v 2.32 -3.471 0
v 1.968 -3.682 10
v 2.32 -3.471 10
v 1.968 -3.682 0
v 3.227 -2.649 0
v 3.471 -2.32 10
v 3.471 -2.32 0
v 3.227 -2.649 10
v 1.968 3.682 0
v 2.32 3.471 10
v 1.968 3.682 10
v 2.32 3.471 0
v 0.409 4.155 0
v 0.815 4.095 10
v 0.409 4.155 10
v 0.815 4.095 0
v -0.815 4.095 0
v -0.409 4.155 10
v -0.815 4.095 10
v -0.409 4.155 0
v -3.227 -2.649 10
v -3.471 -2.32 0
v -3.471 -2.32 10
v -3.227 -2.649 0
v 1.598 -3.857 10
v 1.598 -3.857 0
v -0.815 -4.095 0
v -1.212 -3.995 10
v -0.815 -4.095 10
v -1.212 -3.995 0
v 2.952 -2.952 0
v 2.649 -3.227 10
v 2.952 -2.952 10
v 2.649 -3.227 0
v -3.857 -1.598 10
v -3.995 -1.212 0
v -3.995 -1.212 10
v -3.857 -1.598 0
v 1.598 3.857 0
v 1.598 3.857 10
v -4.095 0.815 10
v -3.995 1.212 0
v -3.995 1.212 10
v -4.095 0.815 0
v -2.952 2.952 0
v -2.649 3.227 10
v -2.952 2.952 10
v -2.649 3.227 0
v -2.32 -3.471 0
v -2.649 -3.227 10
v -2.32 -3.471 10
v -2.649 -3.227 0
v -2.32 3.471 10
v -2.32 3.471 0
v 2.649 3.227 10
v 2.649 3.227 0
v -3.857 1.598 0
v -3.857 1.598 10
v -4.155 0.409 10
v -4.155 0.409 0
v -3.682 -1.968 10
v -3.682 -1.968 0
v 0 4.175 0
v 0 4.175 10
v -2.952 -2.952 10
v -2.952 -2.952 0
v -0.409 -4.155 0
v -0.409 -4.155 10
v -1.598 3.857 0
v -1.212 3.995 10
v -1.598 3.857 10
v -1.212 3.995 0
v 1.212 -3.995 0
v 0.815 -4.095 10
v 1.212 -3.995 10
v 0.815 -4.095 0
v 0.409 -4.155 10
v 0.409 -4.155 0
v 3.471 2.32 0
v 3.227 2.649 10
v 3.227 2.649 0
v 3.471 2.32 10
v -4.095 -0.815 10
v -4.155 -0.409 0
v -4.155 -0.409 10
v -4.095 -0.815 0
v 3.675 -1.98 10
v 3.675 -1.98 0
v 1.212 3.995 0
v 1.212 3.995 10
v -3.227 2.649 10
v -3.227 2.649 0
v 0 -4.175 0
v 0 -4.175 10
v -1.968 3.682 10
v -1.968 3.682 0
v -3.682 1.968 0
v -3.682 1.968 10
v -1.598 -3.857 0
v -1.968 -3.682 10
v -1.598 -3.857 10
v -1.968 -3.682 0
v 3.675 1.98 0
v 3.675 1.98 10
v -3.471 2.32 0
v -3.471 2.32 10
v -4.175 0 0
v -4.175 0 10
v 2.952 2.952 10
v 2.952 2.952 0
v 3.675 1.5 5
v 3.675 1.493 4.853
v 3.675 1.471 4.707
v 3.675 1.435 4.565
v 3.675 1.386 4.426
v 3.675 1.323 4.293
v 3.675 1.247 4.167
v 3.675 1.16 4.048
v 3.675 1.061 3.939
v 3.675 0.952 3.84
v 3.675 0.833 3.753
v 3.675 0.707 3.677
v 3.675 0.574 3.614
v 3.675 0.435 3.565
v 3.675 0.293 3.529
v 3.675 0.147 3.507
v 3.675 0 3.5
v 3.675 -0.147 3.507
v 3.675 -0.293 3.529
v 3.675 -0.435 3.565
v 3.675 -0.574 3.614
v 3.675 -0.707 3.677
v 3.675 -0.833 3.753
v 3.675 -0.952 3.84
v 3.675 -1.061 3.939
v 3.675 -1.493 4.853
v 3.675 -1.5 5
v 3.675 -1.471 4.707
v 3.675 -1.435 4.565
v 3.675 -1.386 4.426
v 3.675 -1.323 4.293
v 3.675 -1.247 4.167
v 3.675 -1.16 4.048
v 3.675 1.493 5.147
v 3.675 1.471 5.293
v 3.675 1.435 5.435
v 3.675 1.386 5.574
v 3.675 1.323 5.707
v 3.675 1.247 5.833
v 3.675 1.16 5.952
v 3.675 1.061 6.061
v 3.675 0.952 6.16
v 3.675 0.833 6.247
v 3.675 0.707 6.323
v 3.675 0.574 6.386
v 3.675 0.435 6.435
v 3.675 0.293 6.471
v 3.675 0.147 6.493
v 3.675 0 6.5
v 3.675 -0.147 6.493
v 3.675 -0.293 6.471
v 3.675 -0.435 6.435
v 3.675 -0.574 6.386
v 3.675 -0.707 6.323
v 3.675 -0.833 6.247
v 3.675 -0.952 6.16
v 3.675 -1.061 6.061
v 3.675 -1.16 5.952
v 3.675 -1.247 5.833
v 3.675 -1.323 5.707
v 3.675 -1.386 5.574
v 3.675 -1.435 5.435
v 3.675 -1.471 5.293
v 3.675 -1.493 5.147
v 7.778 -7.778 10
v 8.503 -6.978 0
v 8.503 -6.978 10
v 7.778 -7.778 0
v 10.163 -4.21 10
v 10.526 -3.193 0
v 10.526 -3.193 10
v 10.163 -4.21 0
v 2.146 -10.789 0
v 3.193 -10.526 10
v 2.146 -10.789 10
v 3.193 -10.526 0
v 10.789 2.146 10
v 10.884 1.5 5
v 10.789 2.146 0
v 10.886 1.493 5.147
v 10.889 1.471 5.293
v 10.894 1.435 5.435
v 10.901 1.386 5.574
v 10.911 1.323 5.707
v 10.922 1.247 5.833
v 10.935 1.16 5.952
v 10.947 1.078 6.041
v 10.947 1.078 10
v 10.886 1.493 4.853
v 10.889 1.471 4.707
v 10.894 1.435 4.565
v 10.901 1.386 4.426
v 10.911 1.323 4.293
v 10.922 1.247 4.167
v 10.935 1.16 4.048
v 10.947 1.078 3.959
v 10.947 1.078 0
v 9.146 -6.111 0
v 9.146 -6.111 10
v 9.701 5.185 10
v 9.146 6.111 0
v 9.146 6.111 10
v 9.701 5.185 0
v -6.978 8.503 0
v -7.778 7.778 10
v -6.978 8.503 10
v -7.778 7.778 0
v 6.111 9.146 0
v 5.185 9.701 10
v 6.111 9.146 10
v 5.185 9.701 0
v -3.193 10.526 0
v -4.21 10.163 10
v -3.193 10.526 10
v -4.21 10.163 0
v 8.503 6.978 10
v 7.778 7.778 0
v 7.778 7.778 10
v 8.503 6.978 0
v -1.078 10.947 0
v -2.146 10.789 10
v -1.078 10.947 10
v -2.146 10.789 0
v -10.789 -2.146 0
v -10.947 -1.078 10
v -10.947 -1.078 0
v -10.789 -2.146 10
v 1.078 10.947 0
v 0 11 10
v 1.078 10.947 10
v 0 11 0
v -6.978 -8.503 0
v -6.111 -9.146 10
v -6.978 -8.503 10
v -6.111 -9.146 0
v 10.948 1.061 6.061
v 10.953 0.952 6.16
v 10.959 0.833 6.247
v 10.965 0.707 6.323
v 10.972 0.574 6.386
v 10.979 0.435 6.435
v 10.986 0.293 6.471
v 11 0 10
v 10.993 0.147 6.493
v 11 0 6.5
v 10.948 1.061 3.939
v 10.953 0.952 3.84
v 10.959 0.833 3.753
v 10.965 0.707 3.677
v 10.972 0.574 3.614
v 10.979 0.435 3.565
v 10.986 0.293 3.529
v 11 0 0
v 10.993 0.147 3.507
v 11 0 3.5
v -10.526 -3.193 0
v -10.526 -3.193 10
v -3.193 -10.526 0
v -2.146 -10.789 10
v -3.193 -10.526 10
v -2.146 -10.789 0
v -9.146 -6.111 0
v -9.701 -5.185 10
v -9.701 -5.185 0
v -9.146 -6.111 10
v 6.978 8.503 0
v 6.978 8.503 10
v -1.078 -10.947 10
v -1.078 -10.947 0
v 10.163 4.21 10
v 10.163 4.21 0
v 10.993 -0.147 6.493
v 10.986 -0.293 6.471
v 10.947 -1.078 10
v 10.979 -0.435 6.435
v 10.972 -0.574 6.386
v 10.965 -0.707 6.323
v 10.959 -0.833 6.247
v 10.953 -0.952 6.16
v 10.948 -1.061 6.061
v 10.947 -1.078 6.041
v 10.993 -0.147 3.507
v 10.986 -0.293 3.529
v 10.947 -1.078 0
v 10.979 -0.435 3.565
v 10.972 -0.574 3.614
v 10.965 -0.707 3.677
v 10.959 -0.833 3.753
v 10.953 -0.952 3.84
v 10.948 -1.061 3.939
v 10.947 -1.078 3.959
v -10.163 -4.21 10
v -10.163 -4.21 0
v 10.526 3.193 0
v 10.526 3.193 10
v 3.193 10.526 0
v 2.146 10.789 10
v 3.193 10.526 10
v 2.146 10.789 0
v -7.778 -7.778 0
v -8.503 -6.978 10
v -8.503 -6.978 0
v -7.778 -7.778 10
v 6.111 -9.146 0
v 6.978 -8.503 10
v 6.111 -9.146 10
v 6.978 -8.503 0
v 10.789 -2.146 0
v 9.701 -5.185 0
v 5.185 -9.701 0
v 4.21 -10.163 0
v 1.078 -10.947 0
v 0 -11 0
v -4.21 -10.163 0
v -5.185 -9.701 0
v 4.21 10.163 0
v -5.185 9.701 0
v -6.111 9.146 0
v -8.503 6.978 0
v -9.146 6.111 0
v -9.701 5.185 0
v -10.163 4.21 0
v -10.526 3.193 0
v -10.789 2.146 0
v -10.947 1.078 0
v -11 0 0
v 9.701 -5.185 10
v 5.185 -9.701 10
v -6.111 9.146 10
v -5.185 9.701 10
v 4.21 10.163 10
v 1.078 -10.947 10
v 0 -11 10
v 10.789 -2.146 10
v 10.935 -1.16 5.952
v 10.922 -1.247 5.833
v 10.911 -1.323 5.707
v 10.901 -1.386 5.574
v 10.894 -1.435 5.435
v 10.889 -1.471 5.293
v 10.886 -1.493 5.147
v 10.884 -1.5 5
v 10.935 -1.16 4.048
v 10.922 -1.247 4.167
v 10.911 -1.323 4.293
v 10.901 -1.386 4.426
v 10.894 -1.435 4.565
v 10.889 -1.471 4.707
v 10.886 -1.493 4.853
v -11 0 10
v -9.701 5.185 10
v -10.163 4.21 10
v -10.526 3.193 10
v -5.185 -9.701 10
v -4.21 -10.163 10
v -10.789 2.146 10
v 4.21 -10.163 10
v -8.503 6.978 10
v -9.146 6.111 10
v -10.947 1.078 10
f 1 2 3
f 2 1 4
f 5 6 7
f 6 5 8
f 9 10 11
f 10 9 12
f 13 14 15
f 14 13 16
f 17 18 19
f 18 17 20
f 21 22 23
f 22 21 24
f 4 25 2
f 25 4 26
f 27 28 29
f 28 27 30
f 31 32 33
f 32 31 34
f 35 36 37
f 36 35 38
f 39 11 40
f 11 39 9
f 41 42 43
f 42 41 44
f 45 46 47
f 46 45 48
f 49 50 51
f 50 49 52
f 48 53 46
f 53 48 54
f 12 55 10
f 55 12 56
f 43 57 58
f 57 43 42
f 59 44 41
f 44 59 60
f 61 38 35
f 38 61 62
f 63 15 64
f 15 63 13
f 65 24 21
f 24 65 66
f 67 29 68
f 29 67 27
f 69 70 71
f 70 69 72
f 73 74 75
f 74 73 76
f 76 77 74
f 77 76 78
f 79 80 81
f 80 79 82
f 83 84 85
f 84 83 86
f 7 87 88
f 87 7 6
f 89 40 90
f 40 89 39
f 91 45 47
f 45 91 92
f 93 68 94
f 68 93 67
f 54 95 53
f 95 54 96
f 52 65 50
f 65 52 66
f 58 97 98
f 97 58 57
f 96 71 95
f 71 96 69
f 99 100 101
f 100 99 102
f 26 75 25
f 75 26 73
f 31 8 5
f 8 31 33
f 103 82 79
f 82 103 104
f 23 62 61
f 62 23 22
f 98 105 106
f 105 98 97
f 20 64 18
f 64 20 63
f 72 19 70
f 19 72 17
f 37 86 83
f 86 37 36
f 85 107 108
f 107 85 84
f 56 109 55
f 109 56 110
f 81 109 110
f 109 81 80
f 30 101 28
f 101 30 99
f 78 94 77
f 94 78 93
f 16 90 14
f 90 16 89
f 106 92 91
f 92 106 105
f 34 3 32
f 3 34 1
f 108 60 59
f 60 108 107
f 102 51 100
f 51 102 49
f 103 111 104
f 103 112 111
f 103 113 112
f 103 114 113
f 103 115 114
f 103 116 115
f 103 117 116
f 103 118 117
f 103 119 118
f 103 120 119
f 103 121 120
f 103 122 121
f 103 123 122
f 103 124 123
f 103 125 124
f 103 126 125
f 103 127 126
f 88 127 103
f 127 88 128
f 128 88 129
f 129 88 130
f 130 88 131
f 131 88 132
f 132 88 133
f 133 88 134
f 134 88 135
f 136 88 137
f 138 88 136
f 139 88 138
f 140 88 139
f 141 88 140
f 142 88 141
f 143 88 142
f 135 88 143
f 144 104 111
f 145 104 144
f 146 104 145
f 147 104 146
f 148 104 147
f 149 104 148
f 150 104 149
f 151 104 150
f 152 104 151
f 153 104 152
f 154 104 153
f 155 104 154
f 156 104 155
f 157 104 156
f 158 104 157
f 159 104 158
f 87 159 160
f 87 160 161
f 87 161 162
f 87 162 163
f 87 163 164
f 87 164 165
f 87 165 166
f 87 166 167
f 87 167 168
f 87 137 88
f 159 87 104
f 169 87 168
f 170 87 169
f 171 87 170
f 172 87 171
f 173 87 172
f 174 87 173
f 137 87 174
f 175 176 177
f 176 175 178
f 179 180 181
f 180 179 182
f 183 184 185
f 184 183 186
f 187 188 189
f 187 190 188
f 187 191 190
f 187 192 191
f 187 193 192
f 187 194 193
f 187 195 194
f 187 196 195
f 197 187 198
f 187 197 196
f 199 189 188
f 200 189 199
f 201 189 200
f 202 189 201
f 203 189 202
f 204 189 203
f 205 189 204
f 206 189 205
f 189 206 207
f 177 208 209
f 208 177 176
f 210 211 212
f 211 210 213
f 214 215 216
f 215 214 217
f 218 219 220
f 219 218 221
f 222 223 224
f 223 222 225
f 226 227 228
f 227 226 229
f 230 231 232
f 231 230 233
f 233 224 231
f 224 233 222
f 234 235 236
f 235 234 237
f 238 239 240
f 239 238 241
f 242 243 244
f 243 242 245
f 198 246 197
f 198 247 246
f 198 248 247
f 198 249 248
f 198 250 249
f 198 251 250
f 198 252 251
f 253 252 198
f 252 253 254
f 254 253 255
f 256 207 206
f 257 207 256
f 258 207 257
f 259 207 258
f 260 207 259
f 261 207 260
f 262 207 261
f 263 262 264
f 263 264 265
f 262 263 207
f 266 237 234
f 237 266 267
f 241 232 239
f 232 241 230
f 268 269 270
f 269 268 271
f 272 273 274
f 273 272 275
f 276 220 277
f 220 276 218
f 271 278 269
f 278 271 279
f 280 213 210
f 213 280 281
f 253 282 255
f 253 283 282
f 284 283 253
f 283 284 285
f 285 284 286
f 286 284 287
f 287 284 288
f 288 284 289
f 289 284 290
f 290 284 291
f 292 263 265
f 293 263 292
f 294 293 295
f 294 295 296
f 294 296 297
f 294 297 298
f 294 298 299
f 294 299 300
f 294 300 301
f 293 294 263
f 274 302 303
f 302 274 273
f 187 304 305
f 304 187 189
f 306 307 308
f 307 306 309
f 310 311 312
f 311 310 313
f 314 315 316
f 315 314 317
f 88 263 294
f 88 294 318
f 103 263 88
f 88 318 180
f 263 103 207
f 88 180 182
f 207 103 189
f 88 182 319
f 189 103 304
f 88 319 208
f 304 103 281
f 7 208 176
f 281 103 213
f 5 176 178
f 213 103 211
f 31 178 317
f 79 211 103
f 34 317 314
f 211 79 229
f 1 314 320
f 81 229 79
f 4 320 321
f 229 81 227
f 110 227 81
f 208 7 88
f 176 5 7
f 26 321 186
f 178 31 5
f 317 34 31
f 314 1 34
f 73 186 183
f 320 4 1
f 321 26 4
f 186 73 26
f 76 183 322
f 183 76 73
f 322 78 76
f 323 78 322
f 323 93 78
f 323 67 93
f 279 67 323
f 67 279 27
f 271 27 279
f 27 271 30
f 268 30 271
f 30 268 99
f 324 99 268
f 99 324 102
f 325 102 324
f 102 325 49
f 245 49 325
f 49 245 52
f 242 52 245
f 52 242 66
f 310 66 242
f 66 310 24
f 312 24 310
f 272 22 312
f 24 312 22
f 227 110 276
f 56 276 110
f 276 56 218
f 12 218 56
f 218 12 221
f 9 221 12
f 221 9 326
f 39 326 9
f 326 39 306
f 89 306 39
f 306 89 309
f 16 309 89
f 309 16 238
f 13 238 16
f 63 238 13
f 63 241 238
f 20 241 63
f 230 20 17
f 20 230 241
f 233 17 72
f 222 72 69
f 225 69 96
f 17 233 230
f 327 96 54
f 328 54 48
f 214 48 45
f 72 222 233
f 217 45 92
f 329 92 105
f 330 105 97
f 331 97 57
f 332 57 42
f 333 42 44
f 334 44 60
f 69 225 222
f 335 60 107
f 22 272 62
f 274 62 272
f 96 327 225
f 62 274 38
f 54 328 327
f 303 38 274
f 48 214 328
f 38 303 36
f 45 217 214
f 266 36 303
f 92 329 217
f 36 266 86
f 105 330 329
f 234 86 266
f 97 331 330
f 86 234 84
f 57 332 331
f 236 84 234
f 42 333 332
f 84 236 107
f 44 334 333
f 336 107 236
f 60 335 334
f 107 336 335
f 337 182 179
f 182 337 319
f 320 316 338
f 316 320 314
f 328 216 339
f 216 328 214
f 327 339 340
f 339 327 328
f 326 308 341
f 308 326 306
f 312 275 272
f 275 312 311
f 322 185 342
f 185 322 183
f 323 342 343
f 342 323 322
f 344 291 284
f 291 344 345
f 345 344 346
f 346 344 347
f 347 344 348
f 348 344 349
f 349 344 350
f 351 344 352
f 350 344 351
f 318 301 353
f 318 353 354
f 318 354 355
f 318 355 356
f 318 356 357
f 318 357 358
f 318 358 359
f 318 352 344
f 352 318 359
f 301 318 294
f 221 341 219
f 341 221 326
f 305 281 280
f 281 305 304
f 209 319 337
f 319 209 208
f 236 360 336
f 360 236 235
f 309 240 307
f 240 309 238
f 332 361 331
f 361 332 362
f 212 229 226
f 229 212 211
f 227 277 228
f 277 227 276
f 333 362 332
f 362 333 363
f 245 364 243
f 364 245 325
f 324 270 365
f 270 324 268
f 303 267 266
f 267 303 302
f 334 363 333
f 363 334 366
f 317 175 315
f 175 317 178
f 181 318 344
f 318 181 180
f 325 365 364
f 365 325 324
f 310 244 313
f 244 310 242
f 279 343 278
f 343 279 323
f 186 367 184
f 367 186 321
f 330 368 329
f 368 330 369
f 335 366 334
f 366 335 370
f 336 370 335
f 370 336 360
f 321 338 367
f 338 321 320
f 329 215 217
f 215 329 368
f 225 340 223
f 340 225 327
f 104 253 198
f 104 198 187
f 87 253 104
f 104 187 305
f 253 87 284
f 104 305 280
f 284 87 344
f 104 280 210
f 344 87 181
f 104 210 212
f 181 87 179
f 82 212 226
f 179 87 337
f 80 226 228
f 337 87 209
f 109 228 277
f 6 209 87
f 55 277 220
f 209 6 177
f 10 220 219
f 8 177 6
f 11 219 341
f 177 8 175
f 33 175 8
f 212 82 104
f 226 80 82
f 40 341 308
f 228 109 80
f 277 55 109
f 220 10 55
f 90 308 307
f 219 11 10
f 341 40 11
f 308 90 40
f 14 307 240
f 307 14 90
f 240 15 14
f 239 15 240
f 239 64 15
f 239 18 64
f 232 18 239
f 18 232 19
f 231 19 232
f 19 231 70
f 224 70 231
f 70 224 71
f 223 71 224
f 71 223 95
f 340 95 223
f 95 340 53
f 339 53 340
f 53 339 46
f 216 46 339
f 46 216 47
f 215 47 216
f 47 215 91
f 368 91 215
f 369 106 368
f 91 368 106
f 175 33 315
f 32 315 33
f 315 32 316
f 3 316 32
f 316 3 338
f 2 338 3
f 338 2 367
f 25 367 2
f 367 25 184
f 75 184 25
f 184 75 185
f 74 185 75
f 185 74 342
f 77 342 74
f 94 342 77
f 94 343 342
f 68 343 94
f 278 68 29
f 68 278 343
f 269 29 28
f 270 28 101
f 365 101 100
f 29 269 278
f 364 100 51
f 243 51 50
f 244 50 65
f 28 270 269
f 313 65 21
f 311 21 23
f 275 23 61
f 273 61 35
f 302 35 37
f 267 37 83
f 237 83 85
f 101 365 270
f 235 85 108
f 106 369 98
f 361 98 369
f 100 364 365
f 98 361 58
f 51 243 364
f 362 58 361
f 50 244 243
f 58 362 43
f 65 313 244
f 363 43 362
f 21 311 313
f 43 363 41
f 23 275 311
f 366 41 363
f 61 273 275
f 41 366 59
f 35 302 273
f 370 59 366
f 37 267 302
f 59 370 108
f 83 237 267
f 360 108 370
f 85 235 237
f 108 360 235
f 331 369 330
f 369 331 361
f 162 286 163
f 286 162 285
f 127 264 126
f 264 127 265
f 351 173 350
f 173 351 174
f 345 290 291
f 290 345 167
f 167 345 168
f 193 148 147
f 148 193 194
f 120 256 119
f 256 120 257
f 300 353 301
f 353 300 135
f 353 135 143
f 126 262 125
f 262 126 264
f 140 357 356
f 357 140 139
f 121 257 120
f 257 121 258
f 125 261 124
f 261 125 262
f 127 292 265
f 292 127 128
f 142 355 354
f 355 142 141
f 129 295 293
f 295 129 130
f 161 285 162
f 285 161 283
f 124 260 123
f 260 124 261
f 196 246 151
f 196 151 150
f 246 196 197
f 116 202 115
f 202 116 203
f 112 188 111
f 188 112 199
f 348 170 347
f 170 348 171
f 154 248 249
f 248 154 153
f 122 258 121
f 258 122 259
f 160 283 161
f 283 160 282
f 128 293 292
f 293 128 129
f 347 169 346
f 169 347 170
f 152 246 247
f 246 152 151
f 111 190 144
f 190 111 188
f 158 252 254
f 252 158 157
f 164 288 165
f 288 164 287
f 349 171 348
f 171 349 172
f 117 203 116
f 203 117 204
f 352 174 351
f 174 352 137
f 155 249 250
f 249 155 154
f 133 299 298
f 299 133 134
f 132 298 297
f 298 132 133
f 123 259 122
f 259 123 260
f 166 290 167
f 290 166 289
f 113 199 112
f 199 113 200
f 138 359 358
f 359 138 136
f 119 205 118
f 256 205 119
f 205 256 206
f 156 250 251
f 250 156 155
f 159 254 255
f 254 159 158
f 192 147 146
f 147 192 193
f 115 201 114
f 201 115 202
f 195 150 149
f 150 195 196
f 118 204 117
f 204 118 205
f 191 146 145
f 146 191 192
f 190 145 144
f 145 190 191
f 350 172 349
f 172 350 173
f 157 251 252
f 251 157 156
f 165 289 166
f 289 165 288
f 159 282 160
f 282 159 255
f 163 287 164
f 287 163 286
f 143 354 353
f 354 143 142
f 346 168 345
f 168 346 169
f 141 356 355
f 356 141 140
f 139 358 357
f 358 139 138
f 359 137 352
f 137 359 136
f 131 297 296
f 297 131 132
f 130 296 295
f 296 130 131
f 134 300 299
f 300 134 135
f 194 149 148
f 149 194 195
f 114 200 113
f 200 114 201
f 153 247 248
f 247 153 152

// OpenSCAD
// Gen-DD — shaft collar with D-flat bore (set screw bears on the flat); print x4
include <parameters.scad>;
$fn = 64;
// D-flat keyed bore: flat faces +X (angle 0 = magnet pocket 0 = index notch)
module dflat_bore(h) {
    intersection() {
        cylinder(d=shaft_bore, h=h);
        translate([-shaft_bore, -shaft_bore, 0]) cube([shaft_bore + dflat_x, 2*shaft_bore, h]);
    }
}

od = 22; h = collar_h; set_d = 3.0;
difference() {
    cylinder(d=od, h=h);
    translate([0, 0, -0.1]) dflat_bore(h + 0.2);
    translate([0, 0, h/2]) rotate([0, 90, 0]) cylinder(d=set_d, h=od);
}
